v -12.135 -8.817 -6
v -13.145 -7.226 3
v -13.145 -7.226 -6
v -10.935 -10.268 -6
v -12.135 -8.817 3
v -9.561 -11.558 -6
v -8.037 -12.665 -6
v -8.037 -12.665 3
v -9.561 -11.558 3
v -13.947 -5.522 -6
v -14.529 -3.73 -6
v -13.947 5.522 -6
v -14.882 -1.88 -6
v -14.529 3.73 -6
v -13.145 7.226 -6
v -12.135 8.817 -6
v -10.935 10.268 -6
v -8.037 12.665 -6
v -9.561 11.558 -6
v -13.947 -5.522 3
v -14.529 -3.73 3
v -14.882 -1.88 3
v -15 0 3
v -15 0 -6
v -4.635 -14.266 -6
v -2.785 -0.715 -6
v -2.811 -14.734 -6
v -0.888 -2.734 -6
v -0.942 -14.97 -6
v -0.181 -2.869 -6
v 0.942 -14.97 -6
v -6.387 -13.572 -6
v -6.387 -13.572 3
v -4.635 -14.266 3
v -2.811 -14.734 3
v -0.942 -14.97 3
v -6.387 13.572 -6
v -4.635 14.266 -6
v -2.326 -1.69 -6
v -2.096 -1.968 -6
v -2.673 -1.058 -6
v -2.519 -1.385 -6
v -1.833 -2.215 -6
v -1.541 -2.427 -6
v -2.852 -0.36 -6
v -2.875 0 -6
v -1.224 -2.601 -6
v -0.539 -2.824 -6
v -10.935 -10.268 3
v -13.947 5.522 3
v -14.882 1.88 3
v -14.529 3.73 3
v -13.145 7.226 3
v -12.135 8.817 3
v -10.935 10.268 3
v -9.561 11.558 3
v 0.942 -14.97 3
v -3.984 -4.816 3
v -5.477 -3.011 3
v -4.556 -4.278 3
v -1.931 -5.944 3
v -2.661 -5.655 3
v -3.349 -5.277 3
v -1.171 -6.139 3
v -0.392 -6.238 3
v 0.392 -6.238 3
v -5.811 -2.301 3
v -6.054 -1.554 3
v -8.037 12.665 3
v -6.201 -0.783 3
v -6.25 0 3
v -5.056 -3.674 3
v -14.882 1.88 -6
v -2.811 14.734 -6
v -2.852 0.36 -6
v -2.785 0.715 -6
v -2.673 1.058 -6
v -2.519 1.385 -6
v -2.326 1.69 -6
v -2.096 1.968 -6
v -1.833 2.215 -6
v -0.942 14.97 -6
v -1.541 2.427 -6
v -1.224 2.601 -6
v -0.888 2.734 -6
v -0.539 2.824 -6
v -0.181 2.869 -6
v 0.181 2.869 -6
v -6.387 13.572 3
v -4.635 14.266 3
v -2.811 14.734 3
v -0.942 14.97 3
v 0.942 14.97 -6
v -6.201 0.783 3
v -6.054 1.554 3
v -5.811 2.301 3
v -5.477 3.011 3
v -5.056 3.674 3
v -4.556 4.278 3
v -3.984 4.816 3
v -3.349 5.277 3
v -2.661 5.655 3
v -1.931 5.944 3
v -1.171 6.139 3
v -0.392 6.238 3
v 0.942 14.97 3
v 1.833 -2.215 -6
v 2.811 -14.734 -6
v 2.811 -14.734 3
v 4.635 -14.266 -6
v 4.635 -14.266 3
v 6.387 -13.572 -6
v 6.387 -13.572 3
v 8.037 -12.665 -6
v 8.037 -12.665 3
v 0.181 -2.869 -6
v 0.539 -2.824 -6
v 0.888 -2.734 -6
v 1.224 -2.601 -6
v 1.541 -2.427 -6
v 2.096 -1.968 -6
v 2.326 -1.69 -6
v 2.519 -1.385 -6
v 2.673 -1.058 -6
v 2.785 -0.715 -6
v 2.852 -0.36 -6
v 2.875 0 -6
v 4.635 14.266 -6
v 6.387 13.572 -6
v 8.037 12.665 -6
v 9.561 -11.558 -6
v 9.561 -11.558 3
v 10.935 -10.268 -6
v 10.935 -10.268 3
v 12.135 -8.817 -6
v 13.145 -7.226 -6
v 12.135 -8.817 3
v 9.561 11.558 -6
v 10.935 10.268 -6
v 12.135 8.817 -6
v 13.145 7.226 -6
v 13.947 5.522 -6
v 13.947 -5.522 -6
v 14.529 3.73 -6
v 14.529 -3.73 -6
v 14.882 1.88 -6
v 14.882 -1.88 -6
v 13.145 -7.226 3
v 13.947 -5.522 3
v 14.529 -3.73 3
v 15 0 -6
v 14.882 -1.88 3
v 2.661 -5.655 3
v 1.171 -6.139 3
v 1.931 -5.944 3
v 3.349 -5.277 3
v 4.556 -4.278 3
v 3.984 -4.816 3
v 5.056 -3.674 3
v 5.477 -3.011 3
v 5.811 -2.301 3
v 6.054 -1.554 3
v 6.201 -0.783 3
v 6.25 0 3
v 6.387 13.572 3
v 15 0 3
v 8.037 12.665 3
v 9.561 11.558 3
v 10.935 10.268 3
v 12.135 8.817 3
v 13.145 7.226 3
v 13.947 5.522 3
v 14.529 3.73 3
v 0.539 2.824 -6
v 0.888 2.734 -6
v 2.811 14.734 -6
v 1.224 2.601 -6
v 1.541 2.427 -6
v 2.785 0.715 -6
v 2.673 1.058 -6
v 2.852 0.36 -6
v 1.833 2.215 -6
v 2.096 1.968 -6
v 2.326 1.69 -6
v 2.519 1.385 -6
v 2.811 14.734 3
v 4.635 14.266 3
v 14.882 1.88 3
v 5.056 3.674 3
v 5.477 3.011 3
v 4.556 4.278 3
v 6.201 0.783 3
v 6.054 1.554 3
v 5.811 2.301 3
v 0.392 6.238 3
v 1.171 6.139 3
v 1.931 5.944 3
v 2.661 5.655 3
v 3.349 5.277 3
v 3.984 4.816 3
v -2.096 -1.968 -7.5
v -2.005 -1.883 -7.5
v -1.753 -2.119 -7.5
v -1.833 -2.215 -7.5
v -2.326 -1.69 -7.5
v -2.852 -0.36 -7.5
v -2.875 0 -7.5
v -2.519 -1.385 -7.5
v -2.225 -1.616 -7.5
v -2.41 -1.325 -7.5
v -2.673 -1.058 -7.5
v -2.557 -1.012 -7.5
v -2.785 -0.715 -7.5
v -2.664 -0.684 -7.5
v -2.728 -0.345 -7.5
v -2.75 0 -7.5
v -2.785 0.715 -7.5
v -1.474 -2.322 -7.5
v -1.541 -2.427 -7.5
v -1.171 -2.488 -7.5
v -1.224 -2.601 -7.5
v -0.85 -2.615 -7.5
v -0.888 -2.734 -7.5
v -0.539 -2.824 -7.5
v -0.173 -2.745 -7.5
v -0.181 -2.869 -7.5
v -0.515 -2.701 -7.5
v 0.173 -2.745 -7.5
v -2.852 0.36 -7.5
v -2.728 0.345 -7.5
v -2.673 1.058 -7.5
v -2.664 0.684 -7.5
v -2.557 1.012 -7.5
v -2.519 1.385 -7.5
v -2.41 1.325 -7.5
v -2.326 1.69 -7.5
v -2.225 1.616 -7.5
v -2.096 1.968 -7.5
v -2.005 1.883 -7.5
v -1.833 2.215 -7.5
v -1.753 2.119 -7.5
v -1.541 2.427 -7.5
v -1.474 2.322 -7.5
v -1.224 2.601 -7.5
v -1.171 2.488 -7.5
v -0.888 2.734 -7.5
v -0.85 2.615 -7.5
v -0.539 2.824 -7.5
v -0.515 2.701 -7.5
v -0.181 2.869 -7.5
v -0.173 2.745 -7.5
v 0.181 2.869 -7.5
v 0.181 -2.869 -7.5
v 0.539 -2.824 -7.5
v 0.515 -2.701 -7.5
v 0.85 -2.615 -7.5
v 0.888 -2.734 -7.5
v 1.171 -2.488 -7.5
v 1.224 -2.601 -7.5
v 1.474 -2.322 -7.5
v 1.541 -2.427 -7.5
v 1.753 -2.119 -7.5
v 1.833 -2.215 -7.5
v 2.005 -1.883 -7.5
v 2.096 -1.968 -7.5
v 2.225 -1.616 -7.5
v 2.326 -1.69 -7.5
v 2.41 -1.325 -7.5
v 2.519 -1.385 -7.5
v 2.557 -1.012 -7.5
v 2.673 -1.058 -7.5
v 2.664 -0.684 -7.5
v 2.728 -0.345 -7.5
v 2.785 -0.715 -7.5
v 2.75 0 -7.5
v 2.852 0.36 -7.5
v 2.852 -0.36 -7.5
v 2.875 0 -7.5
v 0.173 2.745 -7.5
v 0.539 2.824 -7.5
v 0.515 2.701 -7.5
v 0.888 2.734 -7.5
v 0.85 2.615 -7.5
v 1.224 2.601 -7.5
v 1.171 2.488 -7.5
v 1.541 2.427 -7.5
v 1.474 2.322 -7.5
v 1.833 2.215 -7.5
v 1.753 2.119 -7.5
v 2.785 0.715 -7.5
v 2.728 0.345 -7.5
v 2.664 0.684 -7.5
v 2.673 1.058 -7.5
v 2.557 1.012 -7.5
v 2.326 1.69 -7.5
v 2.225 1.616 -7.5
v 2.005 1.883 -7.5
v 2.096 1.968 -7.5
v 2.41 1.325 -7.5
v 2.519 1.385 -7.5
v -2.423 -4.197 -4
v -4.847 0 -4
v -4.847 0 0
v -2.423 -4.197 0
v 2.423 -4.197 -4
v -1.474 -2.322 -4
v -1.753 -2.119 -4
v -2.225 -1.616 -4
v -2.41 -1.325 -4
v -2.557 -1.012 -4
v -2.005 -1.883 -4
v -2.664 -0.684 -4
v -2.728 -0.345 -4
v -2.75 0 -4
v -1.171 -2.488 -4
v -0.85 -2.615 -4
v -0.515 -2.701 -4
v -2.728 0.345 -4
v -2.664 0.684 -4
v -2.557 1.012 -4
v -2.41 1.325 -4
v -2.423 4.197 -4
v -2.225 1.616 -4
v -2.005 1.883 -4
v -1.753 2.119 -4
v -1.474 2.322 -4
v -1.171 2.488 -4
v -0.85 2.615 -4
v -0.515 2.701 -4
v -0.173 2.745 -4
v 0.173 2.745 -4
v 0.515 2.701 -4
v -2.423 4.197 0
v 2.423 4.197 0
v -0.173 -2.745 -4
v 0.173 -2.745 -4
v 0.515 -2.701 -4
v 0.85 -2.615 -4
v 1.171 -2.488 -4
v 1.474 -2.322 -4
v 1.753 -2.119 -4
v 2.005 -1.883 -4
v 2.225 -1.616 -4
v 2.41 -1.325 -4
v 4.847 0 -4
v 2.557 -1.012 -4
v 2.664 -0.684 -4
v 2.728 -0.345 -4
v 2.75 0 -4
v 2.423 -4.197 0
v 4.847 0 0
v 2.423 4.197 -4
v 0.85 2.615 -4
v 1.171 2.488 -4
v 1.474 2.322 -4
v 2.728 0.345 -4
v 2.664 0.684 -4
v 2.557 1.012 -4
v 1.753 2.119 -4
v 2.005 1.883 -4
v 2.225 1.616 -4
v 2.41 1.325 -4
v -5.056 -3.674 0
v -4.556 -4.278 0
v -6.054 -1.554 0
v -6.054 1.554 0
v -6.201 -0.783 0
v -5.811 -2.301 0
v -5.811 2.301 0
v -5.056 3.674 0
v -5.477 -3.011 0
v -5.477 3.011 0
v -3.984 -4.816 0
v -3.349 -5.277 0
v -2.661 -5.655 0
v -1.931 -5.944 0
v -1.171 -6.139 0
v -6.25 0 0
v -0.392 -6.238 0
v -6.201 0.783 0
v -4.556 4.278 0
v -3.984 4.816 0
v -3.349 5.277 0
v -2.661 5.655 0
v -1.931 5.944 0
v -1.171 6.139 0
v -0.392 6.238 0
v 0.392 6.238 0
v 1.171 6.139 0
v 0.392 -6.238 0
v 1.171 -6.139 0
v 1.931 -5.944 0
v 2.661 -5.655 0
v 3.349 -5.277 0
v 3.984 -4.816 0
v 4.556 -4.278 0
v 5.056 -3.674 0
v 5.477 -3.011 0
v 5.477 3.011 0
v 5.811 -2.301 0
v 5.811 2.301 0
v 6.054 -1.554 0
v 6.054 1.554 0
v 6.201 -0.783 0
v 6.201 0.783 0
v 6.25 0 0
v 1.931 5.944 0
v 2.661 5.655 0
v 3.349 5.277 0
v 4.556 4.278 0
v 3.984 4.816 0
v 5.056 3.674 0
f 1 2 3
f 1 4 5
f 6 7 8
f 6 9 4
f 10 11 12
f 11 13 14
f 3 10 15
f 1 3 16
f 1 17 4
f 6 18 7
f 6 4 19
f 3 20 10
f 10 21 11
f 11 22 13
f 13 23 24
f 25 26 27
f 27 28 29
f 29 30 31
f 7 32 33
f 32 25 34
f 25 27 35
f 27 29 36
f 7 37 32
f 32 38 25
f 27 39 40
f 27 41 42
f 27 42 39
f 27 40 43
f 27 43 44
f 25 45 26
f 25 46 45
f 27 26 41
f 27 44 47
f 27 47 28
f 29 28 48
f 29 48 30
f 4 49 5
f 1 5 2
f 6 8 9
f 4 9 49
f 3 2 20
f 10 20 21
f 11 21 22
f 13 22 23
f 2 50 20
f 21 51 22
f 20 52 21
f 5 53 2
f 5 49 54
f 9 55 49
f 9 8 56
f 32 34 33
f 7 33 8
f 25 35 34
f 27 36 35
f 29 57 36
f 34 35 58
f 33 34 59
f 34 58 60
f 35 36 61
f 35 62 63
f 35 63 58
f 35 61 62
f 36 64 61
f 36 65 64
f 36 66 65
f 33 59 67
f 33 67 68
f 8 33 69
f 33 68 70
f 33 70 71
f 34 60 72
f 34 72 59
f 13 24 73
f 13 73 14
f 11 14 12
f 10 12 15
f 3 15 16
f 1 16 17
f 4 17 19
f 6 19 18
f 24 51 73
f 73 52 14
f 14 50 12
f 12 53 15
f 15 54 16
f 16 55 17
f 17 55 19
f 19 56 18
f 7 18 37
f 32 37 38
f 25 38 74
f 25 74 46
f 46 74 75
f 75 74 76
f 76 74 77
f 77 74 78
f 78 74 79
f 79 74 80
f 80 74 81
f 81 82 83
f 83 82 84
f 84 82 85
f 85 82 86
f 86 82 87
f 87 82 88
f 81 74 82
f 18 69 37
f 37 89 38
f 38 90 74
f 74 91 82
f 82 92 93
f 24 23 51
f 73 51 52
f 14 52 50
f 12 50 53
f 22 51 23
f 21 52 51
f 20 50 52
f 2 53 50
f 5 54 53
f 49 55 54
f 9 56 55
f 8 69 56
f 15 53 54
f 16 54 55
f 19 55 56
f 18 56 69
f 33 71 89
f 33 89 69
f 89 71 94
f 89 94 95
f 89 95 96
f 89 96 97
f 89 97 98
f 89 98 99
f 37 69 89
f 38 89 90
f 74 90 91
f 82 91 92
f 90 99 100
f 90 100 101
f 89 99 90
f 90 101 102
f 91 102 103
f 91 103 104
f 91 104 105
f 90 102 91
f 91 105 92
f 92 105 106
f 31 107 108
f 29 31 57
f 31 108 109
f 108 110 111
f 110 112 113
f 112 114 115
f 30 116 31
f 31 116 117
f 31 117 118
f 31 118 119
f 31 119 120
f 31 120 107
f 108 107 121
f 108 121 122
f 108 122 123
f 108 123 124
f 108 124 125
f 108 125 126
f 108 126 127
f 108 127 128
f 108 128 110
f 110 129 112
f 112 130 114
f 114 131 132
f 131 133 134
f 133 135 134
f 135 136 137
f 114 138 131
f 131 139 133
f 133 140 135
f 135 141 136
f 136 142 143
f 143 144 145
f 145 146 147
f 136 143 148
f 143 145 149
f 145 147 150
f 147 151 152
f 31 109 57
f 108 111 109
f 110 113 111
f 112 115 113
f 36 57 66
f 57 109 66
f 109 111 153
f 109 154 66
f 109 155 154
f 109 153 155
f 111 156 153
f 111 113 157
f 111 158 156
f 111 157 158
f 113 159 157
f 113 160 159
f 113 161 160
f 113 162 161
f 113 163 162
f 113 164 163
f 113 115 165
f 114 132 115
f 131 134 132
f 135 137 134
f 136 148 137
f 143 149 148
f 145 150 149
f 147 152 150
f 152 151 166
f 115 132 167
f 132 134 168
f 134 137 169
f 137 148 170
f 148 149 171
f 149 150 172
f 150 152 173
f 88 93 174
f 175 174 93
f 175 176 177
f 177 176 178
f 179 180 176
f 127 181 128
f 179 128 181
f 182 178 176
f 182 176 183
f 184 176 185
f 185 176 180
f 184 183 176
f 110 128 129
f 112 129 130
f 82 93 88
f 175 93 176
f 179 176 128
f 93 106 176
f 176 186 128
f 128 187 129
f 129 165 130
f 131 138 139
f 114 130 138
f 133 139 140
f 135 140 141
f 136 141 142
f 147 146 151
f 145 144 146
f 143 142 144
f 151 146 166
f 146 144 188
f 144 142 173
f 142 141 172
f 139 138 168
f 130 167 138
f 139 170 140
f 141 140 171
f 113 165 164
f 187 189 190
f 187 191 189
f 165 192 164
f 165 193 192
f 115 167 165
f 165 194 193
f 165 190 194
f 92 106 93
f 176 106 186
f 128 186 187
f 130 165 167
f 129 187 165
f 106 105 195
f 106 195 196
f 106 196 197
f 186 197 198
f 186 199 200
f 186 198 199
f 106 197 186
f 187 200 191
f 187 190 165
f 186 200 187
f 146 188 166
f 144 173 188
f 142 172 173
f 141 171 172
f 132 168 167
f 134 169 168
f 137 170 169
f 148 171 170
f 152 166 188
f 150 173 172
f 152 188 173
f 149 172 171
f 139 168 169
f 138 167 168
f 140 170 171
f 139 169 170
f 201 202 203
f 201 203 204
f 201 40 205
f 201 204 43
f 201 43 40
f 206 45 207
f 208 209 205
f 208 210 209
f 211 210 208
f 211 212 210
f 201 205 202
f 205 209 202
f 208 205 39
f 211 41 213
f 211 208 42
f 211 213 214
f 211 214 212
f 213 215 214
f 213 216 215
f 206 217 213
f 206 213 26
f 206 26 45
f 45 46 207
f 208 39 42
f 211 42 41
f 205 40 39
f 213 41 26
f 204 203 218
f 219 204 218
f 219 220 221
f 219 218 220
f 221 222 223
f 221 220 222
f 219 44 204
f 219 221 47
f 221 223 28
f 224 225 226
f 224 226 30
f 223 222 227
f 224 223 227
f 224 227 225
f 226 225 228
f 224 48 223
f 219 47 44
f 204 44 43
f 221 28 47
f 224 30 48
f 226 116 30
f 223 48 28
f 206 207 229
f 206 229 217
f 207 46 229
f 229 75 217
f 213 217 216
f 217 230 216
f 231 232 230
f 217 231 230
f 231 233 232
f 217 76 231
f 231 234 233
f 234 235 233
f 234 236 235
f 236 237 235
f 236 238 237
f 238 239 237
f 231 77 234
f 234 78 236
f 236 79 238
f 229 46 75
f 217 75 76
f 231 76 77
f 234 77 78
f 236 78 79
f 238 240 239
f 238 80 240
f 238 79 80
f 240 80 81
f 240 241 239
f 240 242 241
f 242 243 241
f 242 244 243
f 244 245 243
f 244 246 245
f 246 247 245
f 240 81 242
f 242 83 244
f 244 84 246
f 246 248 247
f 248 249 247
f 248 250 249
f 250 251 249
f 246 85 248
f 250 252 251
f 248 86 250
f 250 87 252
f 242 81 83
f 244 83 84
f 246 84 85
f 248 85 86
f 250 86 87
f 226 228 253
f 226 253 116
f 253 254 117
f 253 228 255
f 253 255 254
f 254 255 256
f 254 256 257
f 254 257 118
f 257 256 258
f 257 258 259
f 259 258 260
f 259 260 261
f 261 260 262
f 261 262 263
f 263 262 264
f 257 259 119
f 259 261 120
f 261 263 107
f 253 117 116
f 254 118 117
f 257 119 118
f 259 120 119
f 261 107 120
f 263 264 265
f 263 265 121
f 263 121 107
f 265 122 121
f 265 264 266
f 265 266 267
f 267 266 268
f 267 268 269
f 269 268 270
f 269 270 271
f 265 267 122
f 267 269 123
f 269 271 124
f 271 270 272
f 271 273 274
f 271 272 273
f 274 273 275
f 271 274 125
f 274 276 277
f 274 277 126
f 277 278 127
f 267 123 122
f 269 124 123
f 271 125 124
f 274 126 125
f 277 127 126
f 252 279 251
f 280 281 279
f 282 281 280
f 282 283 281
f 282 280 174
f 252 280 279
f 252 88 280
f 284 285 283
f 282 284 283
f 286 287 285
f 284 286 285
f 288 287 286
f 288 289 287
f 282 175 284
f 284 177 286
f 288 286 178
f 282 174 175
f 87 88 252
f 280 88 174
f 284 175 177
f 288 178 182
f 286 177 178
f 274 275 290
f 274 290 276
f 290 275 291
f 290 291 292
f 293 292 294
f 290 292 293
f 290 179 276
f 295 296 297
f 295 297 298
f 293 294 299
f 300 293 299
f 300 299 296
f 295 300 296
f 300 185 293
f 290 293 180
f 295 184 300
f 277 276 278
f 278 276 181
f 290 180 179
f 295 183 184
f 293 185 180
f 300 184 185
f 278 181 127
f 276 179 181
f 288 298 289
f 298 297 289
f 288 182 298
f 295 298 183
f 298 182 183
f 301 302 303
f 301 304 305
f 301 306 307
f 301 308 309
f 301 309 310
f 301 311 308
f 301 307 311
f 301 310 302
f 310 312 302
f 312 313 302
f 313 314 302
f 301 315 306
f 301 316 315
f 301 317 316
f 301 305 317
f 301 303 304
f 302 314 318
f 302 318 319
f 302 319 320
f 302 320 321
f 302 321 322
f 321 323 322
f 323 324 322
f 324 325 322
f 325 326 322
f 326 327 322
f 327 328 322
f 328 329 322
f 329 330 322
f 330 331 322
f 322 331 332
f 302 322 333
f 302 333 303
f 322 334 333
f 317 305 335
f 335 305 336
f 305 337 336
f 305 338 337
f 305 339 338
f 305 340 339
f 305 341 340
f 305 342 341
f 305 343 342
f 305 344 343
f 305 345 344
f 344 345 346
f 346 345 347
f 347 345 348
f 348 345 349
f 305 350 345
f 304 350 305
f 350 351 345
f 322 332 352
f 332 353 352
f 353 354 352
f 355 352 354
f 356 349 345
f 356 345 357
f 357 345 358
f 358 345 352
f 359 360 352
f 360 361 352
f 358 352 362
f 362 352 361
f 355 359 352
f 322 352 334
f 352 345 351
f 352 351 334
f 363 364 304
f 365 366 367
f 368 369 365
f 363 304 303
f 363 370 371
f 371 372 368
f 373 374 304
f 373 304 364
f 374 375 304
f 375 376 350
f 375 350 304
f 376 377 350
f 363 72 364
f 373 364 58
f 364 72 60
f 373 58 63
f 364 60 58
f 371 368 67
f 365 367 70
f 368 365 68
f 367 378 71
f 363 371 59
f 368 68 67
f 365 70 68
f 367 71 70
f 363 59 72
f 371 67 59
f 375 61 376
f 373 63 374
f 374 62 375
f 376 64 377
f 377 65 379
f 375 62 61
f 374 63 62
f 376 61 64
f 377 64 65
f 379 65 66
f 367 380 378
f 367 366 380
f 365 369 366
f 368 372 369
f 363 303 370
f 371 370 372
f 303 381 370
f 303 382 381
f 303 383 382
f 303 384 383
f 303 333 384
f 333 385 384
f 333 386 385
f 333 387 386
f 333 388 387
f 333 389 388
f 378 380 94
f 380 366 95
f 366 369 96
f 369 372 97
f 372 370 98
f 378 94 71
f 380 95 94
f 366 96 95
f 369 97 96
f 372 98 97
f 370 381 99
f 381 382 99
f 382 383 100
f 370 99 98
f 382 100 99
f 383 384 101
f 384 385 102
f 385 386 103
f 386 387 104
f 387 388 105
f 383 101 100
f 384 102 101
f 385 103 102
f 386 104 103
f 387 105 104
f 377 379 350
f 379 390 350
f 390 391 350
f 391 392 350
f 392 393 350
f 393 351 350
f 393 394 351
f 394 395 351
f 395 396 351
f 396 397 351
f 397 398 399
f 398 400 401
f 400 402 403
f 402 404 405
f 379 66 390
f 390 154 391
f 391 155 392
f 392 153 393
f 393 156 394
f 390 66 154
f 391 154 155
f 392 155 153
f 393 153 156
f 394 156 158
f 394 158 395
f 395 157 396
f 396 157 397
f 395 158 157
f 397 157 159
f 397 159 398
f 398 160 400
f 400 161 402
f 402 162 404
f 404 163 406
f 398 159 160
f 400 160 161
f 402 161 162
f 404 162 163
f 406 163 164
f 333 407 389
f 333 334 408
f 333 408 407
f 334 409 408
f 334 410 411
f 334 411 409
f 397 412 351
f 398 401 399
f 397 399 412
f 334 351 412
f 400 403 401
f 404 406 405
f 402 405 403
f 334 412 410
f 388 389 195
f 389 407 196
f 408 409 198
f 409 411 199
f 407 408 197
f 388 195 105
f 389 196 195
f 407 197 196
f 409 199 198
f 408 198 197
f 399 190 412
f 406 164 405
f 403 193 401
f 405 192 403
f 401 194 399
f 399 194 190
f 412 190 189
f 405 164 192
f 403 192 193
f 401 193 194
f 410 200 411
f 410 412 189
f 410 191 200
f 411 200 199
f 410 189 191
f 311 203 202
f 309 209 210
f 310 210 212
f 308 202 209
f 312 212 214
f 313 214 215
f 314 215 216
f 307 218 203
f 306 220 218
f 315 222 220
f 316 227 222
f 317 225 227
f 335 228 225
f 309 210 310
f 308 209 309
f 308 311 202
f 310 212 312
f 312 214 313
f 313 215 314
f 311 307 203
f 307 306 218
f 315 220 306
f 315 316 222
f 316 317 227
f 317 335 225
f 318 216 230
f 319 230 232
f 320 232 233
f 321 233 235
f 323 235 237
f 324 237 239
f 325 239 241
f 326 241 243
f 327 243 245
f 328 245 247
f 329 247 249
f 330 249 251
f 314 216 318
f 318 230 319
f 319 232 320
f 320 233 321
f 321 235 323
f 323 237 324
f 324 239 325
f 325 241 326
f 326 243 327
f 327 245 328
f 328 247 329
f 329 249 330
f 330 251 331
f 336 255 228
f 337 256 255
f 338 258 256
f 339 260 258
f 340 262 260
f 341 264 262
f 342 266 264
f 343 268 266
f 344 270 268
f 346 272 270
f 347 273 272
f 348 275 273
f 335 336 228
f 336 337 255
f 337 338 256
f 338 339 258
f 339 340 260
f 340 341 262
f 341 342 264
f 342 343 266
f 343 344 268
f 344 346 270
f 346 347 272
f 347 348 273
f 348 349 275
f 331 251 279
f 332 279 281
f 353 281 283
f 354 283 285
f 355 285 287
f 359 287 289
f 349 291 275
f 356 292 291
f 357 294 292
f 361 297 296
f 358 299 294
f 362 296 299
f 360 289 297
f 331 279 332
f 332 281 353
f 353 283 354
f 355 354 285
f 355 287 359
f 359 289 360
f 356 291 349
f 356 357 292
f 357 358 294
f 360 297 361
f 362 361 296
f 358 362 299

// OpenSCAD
$fn = 50;

difference() {
	union() {
		translate(v = [0, 0, -6.0]) {
			cylinder(h = 9.0, r = 15.0);
		}
		#translate(v = [0, 0, -7.5]) {
			cylinder(h = 7.5, r = 2.875);
		}
	}
	union() {
		translate(v = [0, 0, 0]) {
			rotate(a = [0, 0, 0]) {
				difference() {
					union() {
						translate(v = [0, 0, -4]) {
							linear_extrude(height = 4) {
								polygon(points = [[4.8468, 0.0], [2.4234000000000004, 4.197451927062417], [-2.423399999999999, 4.197451927062417], [-4.8468, 5.935618106107392e-16], [-2.423400000000002, -4.197451927062416], [2.423399999999997, -4.197451927062419]]);
							}
						}
					}
					union();
				}
			}
		}
		#cylinder(h = 3, r = 6.25);
		#translate(v = [0, 0, -100.0]) {
			cylinder(h = 200, r = 2.75);
		}
	}
}
